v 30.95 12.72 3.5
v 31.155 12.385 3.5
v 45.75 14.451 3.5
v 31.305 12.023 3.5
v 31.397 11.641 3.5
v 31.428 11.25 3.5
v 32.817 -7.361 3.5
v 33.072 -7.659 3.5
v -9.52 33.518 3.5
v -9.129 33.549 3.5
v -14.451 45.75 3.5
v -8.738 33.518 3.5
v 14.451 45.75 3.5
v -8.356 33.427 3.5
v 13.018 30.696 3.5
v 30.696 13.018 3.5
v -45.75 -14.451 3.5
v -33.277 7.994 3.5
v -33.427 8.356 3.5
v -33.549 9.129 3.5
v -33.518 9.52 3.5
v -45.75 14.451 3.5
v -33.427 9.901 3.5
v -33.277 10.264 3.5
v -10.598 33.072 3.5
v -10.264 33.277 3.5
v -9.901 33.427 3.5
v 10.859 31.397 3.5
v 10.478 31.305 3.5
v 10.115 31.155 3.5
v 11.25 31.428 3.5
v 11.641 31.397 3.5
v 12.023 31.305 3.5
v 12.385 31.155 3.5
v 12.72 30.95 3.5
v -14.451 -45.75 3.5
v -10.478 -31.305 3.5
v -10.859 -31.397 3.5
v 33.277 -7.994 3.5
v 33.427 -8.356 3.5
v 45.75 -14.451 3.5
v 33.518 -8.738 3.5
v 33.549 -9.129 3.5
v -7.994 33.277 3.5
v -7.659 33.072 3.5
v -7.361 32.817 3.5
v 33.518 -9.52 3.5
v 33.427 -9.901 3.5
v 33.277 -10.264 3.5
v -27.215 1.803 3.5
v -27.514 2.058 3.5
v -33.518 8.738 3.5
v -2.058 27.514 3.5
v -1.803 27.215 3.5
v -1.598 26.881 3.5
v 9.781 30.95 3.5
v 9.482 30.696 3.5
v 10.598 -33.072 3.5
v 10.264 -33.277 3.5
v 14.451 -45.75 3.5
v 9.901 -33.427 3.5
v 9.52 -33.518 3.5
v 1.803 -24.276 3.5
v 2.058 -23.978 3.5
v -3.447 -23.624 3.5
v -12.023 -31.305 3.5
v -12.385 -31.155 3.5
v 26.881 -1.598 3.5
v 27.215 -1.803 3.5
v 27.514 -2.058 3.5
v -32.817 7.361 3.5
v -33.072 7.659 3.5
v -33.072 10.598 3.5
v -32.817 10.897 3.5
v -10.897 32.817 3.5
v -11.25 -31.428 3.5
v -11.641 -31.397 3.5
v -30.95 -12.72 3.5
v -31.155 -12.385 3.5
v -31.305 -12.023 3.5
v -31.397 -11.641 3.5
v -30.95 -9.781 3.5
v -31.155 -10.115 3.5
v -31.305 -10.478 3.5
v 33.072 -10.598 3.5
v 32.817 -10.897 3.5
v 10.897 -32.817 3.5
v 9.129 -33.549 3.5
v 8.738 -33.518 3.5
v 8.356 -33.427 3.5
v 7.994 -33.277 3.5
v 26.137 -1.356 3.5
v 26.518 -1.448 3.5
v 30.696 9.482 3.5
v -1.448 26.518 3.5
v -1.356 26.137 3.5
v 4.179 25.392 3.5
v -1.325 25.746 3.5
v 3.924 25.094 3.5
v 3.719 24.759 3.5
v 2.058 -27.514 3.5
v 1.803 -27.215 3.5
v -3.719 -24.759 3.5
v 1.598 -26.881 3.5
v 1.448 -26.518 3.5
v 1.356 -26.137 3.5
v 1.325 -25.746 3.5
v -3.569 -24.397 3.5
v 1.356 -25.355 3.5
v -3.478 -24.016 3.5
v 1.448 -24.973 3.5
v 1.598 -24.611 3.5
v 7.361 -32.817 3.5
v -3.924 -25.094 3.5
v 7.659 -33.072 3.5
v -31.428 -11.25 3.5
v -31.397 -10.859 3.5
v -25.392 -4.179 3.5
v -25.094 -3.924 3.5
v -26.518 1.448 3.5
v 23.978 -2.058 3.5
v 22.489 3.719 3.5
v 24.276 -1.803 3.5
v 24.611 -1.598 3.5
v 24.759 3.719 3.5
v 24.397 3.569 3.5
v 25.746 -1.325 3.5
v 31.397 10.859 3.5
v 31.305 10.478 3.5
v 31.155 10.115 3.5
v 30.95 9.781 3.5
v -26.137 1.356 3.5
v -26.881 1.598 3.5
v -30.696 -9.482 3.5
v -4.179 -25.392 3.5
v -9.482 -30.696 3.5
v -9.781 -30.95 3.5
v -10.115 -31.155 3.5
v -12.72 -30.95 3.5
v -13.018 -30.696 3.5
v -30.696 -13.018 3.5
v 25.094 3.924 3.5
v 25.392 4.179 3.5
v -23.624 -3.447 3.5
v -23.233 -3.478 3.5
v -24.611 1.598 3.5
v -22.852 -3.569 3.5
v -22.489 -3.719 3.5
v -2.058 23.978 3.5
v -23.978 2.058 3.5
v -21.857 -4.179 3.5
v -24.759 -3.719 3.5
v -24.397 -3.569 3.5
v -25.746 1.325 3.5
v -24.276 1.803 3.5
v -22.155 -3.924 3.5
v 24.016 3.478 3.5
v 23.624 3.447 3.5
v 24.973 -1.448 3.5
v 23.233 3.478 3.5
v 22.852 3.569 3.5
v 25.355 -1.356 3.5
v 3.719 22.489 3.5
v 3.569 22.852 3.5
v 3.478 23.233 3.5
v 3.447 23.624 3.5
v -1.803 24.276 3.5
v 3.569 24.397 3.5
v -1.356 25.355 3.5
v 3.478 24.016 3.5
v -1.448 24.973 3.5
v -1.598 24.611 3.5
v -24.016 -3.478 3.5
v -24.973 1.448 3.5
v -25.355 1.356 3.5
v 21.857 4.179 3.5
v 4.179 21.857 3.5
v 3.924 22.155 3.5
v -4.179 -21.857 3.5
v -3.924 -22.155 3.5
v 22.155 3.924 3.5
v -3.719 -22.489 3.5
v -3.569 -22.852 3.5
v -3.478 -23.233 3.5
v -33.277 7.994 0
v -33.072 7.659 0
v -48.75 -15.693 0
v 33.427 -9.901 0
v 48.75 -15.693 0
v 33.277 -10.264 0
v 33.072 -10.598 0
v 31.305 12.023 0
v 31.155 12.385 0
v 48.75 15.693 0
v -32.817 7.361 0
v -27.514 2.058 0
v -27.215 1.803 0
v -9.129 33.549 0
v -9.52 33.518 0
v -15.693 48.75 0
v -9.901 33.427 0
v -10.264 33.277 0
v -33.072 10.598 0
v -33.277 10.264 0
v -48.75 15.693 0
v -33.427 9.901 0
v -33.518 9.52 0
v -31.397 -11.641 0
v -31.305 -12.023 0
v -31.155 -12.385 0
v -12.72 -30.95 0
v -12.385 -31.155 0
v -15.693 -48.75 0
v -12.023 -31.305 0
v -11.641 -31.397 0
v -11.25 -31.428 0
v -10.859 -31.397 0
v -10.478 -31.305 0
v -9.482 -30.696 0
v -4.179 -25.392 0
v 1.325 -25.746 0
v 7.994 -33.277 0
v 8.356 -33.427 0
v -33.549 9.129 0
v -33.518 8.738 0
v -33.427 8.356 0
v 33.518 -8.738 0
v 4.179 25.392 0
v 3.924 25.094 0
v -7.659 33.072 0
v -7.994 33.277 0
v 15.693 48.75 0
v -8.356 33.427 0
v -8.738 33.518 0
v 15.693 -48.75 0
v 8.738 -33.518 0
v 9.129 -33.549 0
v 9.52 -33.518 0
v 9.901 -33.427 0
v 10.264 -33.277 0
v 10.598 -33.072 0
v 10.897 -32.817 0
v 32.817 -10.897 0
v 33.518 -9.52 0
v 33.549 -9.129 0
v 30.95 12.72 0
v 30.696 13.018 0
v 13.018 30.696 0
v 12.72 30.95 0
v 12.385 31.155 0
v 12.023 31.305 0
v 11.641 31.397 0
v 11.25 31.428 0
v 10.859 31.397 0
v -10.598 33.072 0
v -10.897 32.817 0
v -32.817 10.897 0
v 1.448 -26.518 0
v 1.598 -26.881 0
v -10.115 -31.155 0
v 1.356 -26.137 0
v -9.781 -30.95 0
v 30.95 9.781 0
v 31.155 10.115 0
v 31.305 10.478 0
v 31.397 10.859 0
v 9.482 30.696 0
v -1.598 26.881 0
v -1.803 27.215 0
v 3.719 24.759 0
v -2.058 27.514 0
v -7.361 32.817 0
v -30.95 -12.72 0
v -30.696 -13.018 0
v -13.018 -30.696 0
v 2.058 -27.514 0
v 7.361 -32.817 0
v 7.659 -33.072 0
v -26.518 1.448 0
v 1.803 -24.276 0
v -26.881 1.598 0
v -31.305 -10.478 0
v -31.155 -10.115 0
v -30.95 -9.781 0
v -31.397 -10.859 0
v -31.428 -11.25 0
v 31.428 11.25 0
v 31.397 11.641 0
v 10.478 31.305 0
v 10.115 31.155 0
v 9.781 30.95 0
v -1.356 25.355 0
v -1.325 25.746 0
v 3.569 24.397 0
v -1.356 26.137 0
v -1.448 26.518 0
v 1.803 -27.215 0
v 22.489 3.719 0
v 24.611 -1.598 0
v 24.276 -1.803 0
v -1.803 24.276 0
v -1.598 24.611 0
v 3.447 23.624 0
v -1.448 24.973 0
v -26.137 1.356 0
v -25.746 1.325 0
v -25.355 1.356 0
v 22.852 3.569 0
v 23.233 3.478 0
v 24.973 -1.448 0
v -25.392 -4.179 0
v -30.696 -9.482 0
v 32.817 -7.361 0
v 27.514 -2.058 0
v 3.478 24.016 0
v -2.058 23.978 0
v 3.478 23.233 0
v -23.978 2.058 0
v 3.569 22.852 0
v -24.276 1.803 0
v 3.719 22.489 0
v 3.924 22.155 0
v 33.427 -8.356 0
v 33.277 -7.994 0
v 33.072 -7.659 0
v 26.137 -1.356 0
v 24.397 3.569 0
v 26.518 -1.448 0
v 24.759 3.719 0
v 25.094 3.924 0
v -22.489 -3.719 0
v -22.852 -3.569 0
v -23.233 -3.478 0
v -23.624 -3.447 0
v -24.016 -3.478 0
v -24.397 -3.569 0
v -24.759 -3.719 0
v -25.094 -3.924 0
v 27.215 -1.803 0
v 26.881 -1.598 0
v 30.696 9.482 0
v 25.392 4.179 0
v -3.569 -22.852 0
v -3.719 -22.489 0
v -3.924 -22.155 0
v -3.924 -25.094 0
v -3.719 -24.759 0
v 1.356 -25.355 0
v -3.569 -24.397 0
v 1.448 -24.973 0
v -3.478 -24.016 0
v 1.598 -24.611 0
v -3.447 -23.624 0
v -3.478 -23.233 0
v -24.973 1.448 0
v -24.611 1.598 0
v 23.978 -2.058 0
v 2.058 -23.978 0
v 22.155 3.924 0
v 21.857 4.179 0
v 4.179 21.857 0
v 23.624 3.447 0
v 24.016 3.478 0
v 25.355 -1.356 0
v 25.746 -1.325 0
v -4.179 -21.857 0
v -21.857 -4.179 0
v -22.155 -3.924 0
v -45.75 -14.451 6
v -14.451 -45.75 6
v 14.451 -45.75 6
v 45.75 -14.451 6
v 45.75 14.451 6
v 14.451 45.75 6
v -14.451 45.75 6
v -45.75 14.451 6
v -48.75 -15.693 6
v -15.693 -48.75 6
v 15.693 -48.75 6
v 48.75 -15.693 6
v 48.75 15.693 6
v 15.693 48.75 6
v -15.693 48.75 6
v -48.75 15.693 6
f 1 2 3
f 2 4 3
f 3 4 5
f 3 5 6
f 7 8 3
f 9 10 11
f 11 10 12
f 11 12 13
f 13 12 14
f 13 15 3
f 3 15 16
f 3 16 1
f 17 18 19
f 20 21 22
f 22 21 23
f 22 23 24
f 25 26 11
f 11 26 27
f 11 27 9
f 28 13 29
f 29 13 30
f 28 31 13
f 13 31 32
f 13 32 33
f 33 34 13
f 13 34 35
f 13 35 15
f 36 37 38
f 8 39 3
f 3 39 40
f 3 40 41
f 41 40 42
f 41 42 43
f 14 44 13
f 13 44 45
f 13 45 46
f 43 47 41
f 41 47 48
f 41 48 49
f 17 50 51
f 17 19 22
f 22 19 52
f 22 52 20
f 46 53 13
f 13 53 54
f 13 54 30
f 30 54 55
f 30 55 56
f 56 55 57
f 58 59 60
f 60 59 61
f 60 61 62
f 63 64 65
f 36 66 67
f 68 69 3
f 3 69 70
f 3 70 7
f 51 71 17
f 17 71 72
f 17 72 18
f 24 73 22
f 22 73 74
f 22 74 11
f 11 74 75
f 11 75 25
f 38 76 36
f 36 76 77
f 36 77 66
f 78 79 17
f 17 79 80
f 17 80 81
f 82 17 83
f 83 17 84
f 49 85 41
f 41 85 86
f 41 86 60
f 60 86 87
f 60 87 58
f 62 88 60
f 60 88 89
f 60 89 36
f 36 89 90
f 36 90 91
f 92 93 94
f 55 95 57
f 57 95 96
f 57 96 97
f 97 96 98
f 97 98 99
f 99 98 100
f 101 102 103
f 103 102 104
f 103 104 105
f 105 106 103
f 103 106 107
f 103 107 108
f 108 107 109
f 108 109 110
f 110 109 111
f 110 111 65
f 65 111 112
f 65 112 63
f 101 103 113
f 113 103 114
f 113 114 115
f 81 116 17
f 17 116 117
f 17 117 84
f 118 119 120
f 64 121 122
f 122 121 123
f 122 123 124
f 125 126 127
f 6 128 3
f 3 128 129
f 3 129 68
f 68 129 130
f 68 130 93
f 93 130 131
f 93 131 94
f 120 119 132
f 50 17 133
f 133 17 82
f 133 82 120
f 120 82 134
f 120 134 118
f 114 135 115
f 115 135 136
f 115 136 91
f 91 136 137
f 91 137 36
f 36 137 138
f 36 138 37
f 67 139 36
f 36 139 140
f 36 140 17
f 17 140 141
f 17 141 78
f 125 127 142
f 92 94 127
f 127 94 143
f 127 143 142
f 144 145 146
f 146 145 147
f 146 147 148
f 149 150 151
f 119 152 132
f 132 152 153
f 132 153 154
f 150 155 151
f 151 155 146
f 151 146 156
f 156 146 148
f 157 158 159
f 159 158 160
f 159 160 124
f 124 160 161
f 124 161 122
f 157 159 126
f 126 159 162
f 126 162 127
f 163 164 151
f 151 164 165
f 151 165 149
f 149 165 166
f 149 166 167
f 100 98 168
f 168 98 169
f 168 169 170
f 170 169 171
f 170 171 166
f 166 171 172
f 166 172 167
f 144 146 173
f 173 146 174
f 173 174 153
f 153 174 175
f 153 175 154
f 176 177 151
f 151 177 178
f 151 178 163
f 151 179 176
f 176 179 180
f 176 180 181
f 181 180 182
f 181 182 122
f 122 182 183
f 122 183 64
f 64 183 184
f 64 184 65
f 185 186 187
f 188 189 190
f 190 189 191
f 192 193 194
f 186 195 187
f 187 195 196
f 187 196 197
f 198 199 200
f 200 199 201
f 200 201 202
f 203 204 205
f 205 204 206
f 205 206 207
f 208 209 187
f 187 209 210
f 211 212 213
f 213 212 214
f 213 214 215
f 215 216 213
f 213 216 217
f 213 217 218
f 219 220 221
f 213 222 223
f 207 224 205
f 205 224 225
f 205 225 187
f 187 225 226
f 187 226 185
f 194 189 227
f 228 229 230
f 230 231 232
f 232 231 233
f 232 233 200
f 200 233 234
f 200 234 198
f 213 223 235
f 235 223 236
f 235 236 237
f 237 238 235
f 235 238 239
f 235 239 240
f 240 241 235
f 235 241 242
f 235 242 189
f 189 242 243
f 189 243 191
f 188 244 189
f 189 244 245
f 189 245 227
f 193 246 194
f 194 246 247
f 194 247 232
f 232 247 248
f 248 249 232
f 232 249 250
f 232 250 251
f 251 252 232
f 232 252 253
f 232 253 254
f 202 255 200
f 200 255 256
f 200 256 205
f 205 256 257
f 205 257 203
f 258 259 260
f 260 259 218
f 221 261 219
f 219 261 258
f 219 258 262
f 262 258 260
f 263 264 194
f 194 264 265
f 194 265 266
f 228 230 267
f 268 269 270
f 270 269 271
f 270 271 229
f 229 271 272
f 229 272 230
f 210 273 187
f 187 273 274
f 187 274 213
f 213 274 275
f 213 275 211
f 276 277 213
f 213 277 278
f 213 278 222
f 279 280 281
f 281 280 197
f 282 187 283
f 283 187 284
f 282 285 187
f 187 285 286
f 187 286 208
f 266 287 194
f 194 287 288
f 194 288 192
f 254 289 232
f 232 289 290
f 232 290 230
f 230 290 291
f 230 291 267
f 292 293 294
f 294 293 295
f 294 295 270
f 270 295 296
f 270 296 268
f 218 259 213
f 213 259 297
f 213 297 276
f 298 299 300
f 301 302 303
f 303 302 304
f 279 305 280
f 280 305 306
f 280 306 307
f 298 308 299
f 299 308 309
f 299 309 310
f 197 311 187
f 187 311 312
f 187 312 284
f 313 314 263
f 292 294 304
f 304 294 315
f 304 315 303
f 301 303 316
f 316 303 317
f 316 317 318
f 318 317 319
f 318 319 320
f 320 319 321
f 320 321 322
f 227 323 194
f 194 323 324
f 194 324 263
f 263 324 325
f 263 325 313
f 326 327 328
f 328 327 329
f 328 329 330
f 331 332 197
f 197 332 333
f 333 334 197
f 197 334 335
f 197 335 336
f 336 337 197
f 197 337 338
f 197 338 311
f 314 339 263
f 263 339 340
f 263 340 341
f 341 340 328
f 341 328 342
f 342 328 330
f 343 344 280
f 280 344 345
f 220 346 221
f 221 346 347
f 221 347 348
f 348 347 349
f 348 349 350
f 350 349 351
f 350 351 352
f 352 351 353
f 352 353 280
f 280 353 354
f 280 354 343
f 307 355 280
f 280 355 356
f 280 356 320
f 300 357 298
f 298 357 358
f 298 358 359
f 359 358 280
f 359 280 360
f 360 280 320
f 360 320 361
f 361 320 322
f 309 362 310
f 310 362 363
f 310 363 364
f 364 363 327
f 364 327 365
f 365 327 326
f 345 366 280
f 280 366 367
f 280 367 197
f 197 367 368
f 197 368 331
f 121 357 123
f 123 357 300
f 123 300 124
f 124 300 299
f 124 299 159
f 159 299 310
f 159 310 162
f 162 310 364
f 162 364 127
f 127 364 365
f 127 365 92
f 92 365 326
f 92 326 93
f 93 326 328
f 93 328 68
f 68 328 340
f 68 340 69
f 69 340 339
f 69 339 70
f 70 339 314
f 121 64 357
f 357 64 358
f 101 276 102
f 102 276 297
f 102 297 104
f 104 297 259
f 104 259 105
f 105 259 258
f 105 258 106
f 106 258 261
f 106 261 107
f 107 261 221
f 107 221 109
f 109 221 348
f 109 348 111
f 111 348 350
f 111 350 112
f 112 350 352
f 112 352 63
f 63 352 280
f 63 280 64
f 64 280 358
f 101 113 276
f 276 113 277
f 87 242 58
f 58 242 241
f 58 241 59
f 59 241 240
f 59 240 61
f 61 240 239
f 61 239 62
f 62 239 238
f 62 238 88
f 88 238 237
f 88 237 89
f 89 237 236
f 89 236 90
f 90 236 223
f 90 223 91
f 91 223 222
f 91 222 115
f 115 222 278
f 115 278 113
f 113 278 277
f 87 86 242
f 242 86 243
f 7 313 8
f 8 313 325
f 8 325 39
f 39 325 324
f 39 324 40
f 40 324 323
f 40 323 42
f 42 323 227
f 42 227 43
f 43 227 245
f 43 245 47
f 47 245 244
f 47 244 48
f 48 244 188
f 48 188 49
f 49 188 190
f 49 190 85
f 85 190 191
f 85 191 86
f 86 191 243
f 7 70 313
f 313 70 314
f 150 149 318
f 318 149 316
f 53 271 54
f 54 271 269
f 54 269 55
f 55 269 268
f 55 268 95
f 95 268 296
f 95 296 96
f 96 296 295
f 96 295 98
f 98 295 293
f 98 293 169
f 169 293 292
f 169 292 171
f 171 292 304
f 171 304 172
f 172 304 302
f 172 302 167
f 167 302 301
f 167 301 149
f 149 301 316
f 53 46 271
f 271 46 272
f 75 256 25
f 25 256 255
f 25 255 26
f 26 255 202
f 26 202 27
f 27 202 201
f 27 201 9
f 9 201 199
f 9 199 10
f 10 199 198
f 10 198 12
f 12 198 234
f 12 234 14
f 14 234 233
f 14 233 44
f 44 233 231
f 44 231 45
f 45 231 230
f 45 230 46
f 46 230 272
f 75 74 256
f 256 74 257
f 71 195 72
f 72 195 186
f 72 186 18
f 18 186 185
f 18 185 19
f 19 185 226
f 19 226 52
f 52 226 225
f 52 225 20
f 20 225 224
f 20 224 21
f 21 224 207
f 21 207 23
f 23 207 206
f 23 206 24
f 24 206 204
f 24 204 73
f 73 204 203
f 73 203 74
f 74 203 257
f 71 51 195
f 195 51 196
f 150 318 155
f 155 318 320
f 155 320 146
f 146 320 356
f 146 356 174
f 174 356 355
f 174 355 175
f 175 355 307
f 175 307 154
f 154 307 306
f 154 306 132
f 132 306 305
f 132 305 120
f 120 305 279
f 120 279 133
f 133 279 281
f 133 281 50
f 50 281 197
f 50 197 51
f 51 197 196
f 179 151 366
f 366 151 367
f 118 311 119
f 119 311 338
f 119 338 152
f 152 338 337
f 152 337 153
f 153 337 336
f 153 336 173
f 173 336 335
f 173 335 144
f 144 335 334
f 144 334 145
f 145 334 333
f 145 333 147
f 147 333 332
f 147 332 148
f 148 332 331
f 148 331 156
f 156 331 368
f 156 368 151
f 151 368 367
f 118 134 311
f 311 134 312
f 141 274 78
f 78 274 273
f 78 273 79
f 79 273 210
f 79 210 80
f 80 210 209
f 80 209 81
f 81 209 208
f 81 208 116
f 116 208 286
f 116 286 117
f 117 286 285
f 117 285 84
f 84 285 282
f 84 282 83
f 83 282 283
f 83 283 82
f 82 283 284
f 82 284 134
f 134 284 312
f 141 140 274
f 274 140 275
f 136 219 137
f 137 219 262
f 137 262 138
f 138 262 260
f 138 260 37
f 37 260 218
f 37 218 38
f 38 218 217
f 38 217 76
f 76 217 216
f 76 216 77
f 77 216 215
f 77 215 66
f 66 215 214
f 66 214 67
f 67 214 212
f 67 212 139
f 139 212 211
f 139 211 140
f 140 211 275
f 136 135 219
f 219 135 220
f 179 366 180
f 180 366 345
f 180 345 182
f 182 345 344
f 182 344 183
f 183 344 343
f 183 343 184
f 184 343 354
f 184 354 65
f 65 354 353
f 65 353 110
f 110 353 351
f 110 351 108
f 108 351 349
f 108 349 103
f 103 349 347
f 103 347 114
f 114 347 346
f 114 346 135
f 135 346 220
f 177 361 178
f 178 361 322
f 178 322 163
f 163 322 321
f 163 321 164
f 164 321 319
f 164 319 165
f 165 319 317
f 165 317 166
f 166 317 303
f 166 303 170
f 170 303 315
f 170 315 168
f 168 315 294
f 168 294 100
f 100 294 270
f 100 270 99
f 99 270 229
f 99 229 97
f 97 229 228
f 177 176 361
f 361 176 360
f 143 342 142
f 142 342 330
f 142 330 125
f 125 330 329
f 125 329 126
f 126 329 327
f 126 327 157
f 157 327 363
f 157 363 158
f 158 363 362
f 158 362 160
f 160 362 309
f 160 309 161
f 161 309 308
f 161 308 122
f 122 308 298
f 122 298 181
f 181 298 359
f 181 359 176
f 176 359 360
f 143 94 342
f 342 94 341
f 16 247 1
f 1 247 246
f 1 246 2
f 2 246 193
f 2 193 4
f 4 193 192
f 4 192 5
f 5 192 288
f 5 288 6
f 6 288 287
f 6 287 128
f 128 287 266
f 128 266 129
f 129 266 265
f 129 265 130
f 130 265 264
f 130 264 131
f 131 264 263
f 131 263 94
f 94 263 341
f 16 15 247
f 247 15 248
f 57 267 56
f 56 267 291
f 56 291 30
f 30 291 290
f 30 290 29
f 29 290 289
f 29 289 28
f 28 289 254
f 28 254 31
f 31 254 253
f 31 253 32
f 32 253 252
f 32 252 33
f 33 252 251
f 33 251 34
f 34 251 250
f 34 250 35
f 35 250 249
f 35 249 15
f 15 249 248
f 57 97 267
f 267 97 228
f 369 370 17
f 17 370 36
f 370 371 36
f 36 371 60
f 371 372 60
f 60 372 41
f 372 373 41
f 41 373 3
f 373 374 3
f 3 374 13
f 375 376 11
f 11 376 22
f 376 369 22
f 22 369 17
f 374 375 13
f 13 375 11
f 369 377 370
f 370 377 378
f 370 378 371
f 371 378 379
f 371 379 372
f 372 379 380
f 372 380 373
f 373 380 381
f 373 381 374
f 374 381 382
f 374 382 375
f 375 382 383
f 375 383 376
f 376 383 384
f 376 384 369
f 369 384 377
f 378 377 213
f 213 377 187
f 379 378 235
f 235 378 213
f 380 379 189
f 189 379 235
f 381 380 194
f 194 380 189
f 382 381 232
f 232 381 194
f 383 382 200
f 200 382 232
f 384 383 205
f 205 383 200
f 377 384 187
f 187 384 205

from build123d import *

# Parameters (mm, degrees)
BOSS_EXTRU_1_DEPTH = 3.5
BOSS_EXTRU_2_DEPTH = 6


with BuildPart() as part:
    # Esquisse1 → Boss.-Extru.1 (new body)
    with BuildSketch(Plane.XY):
        Polygon((-45.75, 14.450660172), (-14.450660172, 45.75), (14.450660172, 45.75), (45.75, 14.450660172), (45.75, -14.450660172), (14.450660172, -45.75), (-14.450660172, -45.75), (-45.75, -14.450660172), align=None)
        with BuildLine():
            Line((-13.017835842, 13.017835842), (-2.057680733, 23.97799095))
            ThreePointArc((-2.057680733, 23.97799095), (-1.325447686, 25.745757903), (-2.057680733, 27.513524856))
            Line((-2.057680733, 27.513524856), (-7.360981592, 32.816825715))
            ThreePointArc((-7.360981592, 32.816825715), (-9.128748545, 33.549058762), (-10.896515498, 32.816825715))
            Line((-10.896515498, 32.816825715), (-32.816825715, 10.896515498))
            ThreePointArc((-32.816825715, 10.896515498), (-33.549058762, 9.128748545), (-32.816825715, 7.360981592))
            Line((-32.816825715, 7.360981592), (-27.513524856, 2.057680733))
            ThreePointArc((-27.513524856, 2.057680733), (-25.745757903, 1.325447686), (-23.97799095, 2.057680733))
            Line((-23.97799095, 2.057680733), (-13.017835842, 13.017835842))
        make_face(mode=Mode.SUBTRACT)
        with BuildLine():
            Line((-13.017835842, -13.017835842), (-21.856670606, -4.179001077))
            ThreePointArc((-21.856670606, -4.179001077), (-23.624437559, -3.44676803), (-25.392204512, -4.179001077))
            Line((-25.392204512, -4.179001077), (-30.695505371, -9.482301936))
            ThreePointArc((-30.695505371, -9.482301936), (-31.427738418, -11.250068889), (-30.695505371, -13.017835842))
            Line((-30.695505371, -13.017835842), (-13.017835842, -30.695505371))
            ThreePointArc((-13.017835842, -30.695505371), (-11.250068889, -31.427738418), (-9.482301936, -30.695505371))
            Line((-9.482301936, -30.695505371), (-4.179001077, -25.392204512))
            ThreePointArc((-4.179001077, -25.392204512), (-3.44676803, -23.624437559), (-4.179001077, -21.856670606))
            Line((-4.179001077, -21.856670606), (-13.017835842, -13.017835842))
        make_face(mode=Mode.SUBTRACT)
        with BuildLine():
            Line((27.513524856, -2.057680733), (32.816825715, -7.360981592))
            ThreePointArc((32.816825715, -7.360981592), (33.549058762, -9.128748545), (32.816825715, -10.896515498))
            Line((32.816825715, -10.896515498), (10.896515498, -32.816825715))
            ThreePointArc((10.896515498, -32.816825715), (9.128748545, -33.549058762), (7.360981592, -32.816825715))
            Line((7.360981592, -32.816825715), (2.057680733, -27.513524856))
            ThreePointArc((2.057680733, -27.513524856), (1.325447686, -25.745757903), (2.057680733, -23.97799095))
            Line((2.057680733, -23.97799095), (13.017835842, -13.017835842))
            Line((13.017835842, -13.017835842), (23.97799095, -2.057680733))
            ThreePointArc((23.97799095, -2.057680733), (25.745757903, -1.325447686), (27.513524856, -2.057680733))
        make_face(mode=Mode.SUBTRACT)
        with BuildLine():
            Line((4.179001077, 25.392204512), (9.482301936, 30.695505371))
            ThreePointArc((9.482301936, 30.695505371), (11.250068889, 31.427738418), (13.017835842, 30.695505371))
            Line((13.017835842, 30.695505371), (30.695505371, 13.017835842))
            ThreePointArc((30.695505371, 13.017835842), (31.427738418, 11.250068889), (30.695505371, 9.482301936))
            Line((30.695505371, 9.482301936), (25.392204512, 4.179001077))
            ThreePointArc((25.392204512, 4.179001077), (23.624437559, 3.44676803), (21.856670606, 4.179001077))
            Line((21.856670606, 4.179001077), (13.017835842, 13.017835842))
            Line((13.017835842, 13.017835842), (4.179001077, 21.856670606))
            ThreePointArc((4.179001077, 21.856670606), (3.44676803, 23.624437559), (4.179001077, 25.392204512))
        make_face(mode=Mode.SUBTRACT)
    extrude(amount=BOSS_EXTRU_1_DEPTH)

    # Esquisse2 → Boss.-Extru.2 (add)
    with BuildSketch(Plane.XY):
        Polygon((-48.75, -15.693300859), (-48.75, 15.693300859), (-15.693300859, 48.75), (15.693300859, 48.75), (48.75, 15.693300859), (48.75, -15.693300859), (15.693300859, -48.75), (-15.693300859, -48.75), align=None)
        Polygon((-45.75, 14.450660172), (-14.450660172, 45.75), (14.450660172, 45.75), (45.75, 14.450660172), (45.75, -14.450660172), (14.450660172, -45.75), (-14.450660172, -45.75), (-45.75, -14.450660172), align=None, mode=Mode.SUBTRACT)
    extrude(amount=BOSS_EXTRU_2_DEPTH)


solid = part.part
